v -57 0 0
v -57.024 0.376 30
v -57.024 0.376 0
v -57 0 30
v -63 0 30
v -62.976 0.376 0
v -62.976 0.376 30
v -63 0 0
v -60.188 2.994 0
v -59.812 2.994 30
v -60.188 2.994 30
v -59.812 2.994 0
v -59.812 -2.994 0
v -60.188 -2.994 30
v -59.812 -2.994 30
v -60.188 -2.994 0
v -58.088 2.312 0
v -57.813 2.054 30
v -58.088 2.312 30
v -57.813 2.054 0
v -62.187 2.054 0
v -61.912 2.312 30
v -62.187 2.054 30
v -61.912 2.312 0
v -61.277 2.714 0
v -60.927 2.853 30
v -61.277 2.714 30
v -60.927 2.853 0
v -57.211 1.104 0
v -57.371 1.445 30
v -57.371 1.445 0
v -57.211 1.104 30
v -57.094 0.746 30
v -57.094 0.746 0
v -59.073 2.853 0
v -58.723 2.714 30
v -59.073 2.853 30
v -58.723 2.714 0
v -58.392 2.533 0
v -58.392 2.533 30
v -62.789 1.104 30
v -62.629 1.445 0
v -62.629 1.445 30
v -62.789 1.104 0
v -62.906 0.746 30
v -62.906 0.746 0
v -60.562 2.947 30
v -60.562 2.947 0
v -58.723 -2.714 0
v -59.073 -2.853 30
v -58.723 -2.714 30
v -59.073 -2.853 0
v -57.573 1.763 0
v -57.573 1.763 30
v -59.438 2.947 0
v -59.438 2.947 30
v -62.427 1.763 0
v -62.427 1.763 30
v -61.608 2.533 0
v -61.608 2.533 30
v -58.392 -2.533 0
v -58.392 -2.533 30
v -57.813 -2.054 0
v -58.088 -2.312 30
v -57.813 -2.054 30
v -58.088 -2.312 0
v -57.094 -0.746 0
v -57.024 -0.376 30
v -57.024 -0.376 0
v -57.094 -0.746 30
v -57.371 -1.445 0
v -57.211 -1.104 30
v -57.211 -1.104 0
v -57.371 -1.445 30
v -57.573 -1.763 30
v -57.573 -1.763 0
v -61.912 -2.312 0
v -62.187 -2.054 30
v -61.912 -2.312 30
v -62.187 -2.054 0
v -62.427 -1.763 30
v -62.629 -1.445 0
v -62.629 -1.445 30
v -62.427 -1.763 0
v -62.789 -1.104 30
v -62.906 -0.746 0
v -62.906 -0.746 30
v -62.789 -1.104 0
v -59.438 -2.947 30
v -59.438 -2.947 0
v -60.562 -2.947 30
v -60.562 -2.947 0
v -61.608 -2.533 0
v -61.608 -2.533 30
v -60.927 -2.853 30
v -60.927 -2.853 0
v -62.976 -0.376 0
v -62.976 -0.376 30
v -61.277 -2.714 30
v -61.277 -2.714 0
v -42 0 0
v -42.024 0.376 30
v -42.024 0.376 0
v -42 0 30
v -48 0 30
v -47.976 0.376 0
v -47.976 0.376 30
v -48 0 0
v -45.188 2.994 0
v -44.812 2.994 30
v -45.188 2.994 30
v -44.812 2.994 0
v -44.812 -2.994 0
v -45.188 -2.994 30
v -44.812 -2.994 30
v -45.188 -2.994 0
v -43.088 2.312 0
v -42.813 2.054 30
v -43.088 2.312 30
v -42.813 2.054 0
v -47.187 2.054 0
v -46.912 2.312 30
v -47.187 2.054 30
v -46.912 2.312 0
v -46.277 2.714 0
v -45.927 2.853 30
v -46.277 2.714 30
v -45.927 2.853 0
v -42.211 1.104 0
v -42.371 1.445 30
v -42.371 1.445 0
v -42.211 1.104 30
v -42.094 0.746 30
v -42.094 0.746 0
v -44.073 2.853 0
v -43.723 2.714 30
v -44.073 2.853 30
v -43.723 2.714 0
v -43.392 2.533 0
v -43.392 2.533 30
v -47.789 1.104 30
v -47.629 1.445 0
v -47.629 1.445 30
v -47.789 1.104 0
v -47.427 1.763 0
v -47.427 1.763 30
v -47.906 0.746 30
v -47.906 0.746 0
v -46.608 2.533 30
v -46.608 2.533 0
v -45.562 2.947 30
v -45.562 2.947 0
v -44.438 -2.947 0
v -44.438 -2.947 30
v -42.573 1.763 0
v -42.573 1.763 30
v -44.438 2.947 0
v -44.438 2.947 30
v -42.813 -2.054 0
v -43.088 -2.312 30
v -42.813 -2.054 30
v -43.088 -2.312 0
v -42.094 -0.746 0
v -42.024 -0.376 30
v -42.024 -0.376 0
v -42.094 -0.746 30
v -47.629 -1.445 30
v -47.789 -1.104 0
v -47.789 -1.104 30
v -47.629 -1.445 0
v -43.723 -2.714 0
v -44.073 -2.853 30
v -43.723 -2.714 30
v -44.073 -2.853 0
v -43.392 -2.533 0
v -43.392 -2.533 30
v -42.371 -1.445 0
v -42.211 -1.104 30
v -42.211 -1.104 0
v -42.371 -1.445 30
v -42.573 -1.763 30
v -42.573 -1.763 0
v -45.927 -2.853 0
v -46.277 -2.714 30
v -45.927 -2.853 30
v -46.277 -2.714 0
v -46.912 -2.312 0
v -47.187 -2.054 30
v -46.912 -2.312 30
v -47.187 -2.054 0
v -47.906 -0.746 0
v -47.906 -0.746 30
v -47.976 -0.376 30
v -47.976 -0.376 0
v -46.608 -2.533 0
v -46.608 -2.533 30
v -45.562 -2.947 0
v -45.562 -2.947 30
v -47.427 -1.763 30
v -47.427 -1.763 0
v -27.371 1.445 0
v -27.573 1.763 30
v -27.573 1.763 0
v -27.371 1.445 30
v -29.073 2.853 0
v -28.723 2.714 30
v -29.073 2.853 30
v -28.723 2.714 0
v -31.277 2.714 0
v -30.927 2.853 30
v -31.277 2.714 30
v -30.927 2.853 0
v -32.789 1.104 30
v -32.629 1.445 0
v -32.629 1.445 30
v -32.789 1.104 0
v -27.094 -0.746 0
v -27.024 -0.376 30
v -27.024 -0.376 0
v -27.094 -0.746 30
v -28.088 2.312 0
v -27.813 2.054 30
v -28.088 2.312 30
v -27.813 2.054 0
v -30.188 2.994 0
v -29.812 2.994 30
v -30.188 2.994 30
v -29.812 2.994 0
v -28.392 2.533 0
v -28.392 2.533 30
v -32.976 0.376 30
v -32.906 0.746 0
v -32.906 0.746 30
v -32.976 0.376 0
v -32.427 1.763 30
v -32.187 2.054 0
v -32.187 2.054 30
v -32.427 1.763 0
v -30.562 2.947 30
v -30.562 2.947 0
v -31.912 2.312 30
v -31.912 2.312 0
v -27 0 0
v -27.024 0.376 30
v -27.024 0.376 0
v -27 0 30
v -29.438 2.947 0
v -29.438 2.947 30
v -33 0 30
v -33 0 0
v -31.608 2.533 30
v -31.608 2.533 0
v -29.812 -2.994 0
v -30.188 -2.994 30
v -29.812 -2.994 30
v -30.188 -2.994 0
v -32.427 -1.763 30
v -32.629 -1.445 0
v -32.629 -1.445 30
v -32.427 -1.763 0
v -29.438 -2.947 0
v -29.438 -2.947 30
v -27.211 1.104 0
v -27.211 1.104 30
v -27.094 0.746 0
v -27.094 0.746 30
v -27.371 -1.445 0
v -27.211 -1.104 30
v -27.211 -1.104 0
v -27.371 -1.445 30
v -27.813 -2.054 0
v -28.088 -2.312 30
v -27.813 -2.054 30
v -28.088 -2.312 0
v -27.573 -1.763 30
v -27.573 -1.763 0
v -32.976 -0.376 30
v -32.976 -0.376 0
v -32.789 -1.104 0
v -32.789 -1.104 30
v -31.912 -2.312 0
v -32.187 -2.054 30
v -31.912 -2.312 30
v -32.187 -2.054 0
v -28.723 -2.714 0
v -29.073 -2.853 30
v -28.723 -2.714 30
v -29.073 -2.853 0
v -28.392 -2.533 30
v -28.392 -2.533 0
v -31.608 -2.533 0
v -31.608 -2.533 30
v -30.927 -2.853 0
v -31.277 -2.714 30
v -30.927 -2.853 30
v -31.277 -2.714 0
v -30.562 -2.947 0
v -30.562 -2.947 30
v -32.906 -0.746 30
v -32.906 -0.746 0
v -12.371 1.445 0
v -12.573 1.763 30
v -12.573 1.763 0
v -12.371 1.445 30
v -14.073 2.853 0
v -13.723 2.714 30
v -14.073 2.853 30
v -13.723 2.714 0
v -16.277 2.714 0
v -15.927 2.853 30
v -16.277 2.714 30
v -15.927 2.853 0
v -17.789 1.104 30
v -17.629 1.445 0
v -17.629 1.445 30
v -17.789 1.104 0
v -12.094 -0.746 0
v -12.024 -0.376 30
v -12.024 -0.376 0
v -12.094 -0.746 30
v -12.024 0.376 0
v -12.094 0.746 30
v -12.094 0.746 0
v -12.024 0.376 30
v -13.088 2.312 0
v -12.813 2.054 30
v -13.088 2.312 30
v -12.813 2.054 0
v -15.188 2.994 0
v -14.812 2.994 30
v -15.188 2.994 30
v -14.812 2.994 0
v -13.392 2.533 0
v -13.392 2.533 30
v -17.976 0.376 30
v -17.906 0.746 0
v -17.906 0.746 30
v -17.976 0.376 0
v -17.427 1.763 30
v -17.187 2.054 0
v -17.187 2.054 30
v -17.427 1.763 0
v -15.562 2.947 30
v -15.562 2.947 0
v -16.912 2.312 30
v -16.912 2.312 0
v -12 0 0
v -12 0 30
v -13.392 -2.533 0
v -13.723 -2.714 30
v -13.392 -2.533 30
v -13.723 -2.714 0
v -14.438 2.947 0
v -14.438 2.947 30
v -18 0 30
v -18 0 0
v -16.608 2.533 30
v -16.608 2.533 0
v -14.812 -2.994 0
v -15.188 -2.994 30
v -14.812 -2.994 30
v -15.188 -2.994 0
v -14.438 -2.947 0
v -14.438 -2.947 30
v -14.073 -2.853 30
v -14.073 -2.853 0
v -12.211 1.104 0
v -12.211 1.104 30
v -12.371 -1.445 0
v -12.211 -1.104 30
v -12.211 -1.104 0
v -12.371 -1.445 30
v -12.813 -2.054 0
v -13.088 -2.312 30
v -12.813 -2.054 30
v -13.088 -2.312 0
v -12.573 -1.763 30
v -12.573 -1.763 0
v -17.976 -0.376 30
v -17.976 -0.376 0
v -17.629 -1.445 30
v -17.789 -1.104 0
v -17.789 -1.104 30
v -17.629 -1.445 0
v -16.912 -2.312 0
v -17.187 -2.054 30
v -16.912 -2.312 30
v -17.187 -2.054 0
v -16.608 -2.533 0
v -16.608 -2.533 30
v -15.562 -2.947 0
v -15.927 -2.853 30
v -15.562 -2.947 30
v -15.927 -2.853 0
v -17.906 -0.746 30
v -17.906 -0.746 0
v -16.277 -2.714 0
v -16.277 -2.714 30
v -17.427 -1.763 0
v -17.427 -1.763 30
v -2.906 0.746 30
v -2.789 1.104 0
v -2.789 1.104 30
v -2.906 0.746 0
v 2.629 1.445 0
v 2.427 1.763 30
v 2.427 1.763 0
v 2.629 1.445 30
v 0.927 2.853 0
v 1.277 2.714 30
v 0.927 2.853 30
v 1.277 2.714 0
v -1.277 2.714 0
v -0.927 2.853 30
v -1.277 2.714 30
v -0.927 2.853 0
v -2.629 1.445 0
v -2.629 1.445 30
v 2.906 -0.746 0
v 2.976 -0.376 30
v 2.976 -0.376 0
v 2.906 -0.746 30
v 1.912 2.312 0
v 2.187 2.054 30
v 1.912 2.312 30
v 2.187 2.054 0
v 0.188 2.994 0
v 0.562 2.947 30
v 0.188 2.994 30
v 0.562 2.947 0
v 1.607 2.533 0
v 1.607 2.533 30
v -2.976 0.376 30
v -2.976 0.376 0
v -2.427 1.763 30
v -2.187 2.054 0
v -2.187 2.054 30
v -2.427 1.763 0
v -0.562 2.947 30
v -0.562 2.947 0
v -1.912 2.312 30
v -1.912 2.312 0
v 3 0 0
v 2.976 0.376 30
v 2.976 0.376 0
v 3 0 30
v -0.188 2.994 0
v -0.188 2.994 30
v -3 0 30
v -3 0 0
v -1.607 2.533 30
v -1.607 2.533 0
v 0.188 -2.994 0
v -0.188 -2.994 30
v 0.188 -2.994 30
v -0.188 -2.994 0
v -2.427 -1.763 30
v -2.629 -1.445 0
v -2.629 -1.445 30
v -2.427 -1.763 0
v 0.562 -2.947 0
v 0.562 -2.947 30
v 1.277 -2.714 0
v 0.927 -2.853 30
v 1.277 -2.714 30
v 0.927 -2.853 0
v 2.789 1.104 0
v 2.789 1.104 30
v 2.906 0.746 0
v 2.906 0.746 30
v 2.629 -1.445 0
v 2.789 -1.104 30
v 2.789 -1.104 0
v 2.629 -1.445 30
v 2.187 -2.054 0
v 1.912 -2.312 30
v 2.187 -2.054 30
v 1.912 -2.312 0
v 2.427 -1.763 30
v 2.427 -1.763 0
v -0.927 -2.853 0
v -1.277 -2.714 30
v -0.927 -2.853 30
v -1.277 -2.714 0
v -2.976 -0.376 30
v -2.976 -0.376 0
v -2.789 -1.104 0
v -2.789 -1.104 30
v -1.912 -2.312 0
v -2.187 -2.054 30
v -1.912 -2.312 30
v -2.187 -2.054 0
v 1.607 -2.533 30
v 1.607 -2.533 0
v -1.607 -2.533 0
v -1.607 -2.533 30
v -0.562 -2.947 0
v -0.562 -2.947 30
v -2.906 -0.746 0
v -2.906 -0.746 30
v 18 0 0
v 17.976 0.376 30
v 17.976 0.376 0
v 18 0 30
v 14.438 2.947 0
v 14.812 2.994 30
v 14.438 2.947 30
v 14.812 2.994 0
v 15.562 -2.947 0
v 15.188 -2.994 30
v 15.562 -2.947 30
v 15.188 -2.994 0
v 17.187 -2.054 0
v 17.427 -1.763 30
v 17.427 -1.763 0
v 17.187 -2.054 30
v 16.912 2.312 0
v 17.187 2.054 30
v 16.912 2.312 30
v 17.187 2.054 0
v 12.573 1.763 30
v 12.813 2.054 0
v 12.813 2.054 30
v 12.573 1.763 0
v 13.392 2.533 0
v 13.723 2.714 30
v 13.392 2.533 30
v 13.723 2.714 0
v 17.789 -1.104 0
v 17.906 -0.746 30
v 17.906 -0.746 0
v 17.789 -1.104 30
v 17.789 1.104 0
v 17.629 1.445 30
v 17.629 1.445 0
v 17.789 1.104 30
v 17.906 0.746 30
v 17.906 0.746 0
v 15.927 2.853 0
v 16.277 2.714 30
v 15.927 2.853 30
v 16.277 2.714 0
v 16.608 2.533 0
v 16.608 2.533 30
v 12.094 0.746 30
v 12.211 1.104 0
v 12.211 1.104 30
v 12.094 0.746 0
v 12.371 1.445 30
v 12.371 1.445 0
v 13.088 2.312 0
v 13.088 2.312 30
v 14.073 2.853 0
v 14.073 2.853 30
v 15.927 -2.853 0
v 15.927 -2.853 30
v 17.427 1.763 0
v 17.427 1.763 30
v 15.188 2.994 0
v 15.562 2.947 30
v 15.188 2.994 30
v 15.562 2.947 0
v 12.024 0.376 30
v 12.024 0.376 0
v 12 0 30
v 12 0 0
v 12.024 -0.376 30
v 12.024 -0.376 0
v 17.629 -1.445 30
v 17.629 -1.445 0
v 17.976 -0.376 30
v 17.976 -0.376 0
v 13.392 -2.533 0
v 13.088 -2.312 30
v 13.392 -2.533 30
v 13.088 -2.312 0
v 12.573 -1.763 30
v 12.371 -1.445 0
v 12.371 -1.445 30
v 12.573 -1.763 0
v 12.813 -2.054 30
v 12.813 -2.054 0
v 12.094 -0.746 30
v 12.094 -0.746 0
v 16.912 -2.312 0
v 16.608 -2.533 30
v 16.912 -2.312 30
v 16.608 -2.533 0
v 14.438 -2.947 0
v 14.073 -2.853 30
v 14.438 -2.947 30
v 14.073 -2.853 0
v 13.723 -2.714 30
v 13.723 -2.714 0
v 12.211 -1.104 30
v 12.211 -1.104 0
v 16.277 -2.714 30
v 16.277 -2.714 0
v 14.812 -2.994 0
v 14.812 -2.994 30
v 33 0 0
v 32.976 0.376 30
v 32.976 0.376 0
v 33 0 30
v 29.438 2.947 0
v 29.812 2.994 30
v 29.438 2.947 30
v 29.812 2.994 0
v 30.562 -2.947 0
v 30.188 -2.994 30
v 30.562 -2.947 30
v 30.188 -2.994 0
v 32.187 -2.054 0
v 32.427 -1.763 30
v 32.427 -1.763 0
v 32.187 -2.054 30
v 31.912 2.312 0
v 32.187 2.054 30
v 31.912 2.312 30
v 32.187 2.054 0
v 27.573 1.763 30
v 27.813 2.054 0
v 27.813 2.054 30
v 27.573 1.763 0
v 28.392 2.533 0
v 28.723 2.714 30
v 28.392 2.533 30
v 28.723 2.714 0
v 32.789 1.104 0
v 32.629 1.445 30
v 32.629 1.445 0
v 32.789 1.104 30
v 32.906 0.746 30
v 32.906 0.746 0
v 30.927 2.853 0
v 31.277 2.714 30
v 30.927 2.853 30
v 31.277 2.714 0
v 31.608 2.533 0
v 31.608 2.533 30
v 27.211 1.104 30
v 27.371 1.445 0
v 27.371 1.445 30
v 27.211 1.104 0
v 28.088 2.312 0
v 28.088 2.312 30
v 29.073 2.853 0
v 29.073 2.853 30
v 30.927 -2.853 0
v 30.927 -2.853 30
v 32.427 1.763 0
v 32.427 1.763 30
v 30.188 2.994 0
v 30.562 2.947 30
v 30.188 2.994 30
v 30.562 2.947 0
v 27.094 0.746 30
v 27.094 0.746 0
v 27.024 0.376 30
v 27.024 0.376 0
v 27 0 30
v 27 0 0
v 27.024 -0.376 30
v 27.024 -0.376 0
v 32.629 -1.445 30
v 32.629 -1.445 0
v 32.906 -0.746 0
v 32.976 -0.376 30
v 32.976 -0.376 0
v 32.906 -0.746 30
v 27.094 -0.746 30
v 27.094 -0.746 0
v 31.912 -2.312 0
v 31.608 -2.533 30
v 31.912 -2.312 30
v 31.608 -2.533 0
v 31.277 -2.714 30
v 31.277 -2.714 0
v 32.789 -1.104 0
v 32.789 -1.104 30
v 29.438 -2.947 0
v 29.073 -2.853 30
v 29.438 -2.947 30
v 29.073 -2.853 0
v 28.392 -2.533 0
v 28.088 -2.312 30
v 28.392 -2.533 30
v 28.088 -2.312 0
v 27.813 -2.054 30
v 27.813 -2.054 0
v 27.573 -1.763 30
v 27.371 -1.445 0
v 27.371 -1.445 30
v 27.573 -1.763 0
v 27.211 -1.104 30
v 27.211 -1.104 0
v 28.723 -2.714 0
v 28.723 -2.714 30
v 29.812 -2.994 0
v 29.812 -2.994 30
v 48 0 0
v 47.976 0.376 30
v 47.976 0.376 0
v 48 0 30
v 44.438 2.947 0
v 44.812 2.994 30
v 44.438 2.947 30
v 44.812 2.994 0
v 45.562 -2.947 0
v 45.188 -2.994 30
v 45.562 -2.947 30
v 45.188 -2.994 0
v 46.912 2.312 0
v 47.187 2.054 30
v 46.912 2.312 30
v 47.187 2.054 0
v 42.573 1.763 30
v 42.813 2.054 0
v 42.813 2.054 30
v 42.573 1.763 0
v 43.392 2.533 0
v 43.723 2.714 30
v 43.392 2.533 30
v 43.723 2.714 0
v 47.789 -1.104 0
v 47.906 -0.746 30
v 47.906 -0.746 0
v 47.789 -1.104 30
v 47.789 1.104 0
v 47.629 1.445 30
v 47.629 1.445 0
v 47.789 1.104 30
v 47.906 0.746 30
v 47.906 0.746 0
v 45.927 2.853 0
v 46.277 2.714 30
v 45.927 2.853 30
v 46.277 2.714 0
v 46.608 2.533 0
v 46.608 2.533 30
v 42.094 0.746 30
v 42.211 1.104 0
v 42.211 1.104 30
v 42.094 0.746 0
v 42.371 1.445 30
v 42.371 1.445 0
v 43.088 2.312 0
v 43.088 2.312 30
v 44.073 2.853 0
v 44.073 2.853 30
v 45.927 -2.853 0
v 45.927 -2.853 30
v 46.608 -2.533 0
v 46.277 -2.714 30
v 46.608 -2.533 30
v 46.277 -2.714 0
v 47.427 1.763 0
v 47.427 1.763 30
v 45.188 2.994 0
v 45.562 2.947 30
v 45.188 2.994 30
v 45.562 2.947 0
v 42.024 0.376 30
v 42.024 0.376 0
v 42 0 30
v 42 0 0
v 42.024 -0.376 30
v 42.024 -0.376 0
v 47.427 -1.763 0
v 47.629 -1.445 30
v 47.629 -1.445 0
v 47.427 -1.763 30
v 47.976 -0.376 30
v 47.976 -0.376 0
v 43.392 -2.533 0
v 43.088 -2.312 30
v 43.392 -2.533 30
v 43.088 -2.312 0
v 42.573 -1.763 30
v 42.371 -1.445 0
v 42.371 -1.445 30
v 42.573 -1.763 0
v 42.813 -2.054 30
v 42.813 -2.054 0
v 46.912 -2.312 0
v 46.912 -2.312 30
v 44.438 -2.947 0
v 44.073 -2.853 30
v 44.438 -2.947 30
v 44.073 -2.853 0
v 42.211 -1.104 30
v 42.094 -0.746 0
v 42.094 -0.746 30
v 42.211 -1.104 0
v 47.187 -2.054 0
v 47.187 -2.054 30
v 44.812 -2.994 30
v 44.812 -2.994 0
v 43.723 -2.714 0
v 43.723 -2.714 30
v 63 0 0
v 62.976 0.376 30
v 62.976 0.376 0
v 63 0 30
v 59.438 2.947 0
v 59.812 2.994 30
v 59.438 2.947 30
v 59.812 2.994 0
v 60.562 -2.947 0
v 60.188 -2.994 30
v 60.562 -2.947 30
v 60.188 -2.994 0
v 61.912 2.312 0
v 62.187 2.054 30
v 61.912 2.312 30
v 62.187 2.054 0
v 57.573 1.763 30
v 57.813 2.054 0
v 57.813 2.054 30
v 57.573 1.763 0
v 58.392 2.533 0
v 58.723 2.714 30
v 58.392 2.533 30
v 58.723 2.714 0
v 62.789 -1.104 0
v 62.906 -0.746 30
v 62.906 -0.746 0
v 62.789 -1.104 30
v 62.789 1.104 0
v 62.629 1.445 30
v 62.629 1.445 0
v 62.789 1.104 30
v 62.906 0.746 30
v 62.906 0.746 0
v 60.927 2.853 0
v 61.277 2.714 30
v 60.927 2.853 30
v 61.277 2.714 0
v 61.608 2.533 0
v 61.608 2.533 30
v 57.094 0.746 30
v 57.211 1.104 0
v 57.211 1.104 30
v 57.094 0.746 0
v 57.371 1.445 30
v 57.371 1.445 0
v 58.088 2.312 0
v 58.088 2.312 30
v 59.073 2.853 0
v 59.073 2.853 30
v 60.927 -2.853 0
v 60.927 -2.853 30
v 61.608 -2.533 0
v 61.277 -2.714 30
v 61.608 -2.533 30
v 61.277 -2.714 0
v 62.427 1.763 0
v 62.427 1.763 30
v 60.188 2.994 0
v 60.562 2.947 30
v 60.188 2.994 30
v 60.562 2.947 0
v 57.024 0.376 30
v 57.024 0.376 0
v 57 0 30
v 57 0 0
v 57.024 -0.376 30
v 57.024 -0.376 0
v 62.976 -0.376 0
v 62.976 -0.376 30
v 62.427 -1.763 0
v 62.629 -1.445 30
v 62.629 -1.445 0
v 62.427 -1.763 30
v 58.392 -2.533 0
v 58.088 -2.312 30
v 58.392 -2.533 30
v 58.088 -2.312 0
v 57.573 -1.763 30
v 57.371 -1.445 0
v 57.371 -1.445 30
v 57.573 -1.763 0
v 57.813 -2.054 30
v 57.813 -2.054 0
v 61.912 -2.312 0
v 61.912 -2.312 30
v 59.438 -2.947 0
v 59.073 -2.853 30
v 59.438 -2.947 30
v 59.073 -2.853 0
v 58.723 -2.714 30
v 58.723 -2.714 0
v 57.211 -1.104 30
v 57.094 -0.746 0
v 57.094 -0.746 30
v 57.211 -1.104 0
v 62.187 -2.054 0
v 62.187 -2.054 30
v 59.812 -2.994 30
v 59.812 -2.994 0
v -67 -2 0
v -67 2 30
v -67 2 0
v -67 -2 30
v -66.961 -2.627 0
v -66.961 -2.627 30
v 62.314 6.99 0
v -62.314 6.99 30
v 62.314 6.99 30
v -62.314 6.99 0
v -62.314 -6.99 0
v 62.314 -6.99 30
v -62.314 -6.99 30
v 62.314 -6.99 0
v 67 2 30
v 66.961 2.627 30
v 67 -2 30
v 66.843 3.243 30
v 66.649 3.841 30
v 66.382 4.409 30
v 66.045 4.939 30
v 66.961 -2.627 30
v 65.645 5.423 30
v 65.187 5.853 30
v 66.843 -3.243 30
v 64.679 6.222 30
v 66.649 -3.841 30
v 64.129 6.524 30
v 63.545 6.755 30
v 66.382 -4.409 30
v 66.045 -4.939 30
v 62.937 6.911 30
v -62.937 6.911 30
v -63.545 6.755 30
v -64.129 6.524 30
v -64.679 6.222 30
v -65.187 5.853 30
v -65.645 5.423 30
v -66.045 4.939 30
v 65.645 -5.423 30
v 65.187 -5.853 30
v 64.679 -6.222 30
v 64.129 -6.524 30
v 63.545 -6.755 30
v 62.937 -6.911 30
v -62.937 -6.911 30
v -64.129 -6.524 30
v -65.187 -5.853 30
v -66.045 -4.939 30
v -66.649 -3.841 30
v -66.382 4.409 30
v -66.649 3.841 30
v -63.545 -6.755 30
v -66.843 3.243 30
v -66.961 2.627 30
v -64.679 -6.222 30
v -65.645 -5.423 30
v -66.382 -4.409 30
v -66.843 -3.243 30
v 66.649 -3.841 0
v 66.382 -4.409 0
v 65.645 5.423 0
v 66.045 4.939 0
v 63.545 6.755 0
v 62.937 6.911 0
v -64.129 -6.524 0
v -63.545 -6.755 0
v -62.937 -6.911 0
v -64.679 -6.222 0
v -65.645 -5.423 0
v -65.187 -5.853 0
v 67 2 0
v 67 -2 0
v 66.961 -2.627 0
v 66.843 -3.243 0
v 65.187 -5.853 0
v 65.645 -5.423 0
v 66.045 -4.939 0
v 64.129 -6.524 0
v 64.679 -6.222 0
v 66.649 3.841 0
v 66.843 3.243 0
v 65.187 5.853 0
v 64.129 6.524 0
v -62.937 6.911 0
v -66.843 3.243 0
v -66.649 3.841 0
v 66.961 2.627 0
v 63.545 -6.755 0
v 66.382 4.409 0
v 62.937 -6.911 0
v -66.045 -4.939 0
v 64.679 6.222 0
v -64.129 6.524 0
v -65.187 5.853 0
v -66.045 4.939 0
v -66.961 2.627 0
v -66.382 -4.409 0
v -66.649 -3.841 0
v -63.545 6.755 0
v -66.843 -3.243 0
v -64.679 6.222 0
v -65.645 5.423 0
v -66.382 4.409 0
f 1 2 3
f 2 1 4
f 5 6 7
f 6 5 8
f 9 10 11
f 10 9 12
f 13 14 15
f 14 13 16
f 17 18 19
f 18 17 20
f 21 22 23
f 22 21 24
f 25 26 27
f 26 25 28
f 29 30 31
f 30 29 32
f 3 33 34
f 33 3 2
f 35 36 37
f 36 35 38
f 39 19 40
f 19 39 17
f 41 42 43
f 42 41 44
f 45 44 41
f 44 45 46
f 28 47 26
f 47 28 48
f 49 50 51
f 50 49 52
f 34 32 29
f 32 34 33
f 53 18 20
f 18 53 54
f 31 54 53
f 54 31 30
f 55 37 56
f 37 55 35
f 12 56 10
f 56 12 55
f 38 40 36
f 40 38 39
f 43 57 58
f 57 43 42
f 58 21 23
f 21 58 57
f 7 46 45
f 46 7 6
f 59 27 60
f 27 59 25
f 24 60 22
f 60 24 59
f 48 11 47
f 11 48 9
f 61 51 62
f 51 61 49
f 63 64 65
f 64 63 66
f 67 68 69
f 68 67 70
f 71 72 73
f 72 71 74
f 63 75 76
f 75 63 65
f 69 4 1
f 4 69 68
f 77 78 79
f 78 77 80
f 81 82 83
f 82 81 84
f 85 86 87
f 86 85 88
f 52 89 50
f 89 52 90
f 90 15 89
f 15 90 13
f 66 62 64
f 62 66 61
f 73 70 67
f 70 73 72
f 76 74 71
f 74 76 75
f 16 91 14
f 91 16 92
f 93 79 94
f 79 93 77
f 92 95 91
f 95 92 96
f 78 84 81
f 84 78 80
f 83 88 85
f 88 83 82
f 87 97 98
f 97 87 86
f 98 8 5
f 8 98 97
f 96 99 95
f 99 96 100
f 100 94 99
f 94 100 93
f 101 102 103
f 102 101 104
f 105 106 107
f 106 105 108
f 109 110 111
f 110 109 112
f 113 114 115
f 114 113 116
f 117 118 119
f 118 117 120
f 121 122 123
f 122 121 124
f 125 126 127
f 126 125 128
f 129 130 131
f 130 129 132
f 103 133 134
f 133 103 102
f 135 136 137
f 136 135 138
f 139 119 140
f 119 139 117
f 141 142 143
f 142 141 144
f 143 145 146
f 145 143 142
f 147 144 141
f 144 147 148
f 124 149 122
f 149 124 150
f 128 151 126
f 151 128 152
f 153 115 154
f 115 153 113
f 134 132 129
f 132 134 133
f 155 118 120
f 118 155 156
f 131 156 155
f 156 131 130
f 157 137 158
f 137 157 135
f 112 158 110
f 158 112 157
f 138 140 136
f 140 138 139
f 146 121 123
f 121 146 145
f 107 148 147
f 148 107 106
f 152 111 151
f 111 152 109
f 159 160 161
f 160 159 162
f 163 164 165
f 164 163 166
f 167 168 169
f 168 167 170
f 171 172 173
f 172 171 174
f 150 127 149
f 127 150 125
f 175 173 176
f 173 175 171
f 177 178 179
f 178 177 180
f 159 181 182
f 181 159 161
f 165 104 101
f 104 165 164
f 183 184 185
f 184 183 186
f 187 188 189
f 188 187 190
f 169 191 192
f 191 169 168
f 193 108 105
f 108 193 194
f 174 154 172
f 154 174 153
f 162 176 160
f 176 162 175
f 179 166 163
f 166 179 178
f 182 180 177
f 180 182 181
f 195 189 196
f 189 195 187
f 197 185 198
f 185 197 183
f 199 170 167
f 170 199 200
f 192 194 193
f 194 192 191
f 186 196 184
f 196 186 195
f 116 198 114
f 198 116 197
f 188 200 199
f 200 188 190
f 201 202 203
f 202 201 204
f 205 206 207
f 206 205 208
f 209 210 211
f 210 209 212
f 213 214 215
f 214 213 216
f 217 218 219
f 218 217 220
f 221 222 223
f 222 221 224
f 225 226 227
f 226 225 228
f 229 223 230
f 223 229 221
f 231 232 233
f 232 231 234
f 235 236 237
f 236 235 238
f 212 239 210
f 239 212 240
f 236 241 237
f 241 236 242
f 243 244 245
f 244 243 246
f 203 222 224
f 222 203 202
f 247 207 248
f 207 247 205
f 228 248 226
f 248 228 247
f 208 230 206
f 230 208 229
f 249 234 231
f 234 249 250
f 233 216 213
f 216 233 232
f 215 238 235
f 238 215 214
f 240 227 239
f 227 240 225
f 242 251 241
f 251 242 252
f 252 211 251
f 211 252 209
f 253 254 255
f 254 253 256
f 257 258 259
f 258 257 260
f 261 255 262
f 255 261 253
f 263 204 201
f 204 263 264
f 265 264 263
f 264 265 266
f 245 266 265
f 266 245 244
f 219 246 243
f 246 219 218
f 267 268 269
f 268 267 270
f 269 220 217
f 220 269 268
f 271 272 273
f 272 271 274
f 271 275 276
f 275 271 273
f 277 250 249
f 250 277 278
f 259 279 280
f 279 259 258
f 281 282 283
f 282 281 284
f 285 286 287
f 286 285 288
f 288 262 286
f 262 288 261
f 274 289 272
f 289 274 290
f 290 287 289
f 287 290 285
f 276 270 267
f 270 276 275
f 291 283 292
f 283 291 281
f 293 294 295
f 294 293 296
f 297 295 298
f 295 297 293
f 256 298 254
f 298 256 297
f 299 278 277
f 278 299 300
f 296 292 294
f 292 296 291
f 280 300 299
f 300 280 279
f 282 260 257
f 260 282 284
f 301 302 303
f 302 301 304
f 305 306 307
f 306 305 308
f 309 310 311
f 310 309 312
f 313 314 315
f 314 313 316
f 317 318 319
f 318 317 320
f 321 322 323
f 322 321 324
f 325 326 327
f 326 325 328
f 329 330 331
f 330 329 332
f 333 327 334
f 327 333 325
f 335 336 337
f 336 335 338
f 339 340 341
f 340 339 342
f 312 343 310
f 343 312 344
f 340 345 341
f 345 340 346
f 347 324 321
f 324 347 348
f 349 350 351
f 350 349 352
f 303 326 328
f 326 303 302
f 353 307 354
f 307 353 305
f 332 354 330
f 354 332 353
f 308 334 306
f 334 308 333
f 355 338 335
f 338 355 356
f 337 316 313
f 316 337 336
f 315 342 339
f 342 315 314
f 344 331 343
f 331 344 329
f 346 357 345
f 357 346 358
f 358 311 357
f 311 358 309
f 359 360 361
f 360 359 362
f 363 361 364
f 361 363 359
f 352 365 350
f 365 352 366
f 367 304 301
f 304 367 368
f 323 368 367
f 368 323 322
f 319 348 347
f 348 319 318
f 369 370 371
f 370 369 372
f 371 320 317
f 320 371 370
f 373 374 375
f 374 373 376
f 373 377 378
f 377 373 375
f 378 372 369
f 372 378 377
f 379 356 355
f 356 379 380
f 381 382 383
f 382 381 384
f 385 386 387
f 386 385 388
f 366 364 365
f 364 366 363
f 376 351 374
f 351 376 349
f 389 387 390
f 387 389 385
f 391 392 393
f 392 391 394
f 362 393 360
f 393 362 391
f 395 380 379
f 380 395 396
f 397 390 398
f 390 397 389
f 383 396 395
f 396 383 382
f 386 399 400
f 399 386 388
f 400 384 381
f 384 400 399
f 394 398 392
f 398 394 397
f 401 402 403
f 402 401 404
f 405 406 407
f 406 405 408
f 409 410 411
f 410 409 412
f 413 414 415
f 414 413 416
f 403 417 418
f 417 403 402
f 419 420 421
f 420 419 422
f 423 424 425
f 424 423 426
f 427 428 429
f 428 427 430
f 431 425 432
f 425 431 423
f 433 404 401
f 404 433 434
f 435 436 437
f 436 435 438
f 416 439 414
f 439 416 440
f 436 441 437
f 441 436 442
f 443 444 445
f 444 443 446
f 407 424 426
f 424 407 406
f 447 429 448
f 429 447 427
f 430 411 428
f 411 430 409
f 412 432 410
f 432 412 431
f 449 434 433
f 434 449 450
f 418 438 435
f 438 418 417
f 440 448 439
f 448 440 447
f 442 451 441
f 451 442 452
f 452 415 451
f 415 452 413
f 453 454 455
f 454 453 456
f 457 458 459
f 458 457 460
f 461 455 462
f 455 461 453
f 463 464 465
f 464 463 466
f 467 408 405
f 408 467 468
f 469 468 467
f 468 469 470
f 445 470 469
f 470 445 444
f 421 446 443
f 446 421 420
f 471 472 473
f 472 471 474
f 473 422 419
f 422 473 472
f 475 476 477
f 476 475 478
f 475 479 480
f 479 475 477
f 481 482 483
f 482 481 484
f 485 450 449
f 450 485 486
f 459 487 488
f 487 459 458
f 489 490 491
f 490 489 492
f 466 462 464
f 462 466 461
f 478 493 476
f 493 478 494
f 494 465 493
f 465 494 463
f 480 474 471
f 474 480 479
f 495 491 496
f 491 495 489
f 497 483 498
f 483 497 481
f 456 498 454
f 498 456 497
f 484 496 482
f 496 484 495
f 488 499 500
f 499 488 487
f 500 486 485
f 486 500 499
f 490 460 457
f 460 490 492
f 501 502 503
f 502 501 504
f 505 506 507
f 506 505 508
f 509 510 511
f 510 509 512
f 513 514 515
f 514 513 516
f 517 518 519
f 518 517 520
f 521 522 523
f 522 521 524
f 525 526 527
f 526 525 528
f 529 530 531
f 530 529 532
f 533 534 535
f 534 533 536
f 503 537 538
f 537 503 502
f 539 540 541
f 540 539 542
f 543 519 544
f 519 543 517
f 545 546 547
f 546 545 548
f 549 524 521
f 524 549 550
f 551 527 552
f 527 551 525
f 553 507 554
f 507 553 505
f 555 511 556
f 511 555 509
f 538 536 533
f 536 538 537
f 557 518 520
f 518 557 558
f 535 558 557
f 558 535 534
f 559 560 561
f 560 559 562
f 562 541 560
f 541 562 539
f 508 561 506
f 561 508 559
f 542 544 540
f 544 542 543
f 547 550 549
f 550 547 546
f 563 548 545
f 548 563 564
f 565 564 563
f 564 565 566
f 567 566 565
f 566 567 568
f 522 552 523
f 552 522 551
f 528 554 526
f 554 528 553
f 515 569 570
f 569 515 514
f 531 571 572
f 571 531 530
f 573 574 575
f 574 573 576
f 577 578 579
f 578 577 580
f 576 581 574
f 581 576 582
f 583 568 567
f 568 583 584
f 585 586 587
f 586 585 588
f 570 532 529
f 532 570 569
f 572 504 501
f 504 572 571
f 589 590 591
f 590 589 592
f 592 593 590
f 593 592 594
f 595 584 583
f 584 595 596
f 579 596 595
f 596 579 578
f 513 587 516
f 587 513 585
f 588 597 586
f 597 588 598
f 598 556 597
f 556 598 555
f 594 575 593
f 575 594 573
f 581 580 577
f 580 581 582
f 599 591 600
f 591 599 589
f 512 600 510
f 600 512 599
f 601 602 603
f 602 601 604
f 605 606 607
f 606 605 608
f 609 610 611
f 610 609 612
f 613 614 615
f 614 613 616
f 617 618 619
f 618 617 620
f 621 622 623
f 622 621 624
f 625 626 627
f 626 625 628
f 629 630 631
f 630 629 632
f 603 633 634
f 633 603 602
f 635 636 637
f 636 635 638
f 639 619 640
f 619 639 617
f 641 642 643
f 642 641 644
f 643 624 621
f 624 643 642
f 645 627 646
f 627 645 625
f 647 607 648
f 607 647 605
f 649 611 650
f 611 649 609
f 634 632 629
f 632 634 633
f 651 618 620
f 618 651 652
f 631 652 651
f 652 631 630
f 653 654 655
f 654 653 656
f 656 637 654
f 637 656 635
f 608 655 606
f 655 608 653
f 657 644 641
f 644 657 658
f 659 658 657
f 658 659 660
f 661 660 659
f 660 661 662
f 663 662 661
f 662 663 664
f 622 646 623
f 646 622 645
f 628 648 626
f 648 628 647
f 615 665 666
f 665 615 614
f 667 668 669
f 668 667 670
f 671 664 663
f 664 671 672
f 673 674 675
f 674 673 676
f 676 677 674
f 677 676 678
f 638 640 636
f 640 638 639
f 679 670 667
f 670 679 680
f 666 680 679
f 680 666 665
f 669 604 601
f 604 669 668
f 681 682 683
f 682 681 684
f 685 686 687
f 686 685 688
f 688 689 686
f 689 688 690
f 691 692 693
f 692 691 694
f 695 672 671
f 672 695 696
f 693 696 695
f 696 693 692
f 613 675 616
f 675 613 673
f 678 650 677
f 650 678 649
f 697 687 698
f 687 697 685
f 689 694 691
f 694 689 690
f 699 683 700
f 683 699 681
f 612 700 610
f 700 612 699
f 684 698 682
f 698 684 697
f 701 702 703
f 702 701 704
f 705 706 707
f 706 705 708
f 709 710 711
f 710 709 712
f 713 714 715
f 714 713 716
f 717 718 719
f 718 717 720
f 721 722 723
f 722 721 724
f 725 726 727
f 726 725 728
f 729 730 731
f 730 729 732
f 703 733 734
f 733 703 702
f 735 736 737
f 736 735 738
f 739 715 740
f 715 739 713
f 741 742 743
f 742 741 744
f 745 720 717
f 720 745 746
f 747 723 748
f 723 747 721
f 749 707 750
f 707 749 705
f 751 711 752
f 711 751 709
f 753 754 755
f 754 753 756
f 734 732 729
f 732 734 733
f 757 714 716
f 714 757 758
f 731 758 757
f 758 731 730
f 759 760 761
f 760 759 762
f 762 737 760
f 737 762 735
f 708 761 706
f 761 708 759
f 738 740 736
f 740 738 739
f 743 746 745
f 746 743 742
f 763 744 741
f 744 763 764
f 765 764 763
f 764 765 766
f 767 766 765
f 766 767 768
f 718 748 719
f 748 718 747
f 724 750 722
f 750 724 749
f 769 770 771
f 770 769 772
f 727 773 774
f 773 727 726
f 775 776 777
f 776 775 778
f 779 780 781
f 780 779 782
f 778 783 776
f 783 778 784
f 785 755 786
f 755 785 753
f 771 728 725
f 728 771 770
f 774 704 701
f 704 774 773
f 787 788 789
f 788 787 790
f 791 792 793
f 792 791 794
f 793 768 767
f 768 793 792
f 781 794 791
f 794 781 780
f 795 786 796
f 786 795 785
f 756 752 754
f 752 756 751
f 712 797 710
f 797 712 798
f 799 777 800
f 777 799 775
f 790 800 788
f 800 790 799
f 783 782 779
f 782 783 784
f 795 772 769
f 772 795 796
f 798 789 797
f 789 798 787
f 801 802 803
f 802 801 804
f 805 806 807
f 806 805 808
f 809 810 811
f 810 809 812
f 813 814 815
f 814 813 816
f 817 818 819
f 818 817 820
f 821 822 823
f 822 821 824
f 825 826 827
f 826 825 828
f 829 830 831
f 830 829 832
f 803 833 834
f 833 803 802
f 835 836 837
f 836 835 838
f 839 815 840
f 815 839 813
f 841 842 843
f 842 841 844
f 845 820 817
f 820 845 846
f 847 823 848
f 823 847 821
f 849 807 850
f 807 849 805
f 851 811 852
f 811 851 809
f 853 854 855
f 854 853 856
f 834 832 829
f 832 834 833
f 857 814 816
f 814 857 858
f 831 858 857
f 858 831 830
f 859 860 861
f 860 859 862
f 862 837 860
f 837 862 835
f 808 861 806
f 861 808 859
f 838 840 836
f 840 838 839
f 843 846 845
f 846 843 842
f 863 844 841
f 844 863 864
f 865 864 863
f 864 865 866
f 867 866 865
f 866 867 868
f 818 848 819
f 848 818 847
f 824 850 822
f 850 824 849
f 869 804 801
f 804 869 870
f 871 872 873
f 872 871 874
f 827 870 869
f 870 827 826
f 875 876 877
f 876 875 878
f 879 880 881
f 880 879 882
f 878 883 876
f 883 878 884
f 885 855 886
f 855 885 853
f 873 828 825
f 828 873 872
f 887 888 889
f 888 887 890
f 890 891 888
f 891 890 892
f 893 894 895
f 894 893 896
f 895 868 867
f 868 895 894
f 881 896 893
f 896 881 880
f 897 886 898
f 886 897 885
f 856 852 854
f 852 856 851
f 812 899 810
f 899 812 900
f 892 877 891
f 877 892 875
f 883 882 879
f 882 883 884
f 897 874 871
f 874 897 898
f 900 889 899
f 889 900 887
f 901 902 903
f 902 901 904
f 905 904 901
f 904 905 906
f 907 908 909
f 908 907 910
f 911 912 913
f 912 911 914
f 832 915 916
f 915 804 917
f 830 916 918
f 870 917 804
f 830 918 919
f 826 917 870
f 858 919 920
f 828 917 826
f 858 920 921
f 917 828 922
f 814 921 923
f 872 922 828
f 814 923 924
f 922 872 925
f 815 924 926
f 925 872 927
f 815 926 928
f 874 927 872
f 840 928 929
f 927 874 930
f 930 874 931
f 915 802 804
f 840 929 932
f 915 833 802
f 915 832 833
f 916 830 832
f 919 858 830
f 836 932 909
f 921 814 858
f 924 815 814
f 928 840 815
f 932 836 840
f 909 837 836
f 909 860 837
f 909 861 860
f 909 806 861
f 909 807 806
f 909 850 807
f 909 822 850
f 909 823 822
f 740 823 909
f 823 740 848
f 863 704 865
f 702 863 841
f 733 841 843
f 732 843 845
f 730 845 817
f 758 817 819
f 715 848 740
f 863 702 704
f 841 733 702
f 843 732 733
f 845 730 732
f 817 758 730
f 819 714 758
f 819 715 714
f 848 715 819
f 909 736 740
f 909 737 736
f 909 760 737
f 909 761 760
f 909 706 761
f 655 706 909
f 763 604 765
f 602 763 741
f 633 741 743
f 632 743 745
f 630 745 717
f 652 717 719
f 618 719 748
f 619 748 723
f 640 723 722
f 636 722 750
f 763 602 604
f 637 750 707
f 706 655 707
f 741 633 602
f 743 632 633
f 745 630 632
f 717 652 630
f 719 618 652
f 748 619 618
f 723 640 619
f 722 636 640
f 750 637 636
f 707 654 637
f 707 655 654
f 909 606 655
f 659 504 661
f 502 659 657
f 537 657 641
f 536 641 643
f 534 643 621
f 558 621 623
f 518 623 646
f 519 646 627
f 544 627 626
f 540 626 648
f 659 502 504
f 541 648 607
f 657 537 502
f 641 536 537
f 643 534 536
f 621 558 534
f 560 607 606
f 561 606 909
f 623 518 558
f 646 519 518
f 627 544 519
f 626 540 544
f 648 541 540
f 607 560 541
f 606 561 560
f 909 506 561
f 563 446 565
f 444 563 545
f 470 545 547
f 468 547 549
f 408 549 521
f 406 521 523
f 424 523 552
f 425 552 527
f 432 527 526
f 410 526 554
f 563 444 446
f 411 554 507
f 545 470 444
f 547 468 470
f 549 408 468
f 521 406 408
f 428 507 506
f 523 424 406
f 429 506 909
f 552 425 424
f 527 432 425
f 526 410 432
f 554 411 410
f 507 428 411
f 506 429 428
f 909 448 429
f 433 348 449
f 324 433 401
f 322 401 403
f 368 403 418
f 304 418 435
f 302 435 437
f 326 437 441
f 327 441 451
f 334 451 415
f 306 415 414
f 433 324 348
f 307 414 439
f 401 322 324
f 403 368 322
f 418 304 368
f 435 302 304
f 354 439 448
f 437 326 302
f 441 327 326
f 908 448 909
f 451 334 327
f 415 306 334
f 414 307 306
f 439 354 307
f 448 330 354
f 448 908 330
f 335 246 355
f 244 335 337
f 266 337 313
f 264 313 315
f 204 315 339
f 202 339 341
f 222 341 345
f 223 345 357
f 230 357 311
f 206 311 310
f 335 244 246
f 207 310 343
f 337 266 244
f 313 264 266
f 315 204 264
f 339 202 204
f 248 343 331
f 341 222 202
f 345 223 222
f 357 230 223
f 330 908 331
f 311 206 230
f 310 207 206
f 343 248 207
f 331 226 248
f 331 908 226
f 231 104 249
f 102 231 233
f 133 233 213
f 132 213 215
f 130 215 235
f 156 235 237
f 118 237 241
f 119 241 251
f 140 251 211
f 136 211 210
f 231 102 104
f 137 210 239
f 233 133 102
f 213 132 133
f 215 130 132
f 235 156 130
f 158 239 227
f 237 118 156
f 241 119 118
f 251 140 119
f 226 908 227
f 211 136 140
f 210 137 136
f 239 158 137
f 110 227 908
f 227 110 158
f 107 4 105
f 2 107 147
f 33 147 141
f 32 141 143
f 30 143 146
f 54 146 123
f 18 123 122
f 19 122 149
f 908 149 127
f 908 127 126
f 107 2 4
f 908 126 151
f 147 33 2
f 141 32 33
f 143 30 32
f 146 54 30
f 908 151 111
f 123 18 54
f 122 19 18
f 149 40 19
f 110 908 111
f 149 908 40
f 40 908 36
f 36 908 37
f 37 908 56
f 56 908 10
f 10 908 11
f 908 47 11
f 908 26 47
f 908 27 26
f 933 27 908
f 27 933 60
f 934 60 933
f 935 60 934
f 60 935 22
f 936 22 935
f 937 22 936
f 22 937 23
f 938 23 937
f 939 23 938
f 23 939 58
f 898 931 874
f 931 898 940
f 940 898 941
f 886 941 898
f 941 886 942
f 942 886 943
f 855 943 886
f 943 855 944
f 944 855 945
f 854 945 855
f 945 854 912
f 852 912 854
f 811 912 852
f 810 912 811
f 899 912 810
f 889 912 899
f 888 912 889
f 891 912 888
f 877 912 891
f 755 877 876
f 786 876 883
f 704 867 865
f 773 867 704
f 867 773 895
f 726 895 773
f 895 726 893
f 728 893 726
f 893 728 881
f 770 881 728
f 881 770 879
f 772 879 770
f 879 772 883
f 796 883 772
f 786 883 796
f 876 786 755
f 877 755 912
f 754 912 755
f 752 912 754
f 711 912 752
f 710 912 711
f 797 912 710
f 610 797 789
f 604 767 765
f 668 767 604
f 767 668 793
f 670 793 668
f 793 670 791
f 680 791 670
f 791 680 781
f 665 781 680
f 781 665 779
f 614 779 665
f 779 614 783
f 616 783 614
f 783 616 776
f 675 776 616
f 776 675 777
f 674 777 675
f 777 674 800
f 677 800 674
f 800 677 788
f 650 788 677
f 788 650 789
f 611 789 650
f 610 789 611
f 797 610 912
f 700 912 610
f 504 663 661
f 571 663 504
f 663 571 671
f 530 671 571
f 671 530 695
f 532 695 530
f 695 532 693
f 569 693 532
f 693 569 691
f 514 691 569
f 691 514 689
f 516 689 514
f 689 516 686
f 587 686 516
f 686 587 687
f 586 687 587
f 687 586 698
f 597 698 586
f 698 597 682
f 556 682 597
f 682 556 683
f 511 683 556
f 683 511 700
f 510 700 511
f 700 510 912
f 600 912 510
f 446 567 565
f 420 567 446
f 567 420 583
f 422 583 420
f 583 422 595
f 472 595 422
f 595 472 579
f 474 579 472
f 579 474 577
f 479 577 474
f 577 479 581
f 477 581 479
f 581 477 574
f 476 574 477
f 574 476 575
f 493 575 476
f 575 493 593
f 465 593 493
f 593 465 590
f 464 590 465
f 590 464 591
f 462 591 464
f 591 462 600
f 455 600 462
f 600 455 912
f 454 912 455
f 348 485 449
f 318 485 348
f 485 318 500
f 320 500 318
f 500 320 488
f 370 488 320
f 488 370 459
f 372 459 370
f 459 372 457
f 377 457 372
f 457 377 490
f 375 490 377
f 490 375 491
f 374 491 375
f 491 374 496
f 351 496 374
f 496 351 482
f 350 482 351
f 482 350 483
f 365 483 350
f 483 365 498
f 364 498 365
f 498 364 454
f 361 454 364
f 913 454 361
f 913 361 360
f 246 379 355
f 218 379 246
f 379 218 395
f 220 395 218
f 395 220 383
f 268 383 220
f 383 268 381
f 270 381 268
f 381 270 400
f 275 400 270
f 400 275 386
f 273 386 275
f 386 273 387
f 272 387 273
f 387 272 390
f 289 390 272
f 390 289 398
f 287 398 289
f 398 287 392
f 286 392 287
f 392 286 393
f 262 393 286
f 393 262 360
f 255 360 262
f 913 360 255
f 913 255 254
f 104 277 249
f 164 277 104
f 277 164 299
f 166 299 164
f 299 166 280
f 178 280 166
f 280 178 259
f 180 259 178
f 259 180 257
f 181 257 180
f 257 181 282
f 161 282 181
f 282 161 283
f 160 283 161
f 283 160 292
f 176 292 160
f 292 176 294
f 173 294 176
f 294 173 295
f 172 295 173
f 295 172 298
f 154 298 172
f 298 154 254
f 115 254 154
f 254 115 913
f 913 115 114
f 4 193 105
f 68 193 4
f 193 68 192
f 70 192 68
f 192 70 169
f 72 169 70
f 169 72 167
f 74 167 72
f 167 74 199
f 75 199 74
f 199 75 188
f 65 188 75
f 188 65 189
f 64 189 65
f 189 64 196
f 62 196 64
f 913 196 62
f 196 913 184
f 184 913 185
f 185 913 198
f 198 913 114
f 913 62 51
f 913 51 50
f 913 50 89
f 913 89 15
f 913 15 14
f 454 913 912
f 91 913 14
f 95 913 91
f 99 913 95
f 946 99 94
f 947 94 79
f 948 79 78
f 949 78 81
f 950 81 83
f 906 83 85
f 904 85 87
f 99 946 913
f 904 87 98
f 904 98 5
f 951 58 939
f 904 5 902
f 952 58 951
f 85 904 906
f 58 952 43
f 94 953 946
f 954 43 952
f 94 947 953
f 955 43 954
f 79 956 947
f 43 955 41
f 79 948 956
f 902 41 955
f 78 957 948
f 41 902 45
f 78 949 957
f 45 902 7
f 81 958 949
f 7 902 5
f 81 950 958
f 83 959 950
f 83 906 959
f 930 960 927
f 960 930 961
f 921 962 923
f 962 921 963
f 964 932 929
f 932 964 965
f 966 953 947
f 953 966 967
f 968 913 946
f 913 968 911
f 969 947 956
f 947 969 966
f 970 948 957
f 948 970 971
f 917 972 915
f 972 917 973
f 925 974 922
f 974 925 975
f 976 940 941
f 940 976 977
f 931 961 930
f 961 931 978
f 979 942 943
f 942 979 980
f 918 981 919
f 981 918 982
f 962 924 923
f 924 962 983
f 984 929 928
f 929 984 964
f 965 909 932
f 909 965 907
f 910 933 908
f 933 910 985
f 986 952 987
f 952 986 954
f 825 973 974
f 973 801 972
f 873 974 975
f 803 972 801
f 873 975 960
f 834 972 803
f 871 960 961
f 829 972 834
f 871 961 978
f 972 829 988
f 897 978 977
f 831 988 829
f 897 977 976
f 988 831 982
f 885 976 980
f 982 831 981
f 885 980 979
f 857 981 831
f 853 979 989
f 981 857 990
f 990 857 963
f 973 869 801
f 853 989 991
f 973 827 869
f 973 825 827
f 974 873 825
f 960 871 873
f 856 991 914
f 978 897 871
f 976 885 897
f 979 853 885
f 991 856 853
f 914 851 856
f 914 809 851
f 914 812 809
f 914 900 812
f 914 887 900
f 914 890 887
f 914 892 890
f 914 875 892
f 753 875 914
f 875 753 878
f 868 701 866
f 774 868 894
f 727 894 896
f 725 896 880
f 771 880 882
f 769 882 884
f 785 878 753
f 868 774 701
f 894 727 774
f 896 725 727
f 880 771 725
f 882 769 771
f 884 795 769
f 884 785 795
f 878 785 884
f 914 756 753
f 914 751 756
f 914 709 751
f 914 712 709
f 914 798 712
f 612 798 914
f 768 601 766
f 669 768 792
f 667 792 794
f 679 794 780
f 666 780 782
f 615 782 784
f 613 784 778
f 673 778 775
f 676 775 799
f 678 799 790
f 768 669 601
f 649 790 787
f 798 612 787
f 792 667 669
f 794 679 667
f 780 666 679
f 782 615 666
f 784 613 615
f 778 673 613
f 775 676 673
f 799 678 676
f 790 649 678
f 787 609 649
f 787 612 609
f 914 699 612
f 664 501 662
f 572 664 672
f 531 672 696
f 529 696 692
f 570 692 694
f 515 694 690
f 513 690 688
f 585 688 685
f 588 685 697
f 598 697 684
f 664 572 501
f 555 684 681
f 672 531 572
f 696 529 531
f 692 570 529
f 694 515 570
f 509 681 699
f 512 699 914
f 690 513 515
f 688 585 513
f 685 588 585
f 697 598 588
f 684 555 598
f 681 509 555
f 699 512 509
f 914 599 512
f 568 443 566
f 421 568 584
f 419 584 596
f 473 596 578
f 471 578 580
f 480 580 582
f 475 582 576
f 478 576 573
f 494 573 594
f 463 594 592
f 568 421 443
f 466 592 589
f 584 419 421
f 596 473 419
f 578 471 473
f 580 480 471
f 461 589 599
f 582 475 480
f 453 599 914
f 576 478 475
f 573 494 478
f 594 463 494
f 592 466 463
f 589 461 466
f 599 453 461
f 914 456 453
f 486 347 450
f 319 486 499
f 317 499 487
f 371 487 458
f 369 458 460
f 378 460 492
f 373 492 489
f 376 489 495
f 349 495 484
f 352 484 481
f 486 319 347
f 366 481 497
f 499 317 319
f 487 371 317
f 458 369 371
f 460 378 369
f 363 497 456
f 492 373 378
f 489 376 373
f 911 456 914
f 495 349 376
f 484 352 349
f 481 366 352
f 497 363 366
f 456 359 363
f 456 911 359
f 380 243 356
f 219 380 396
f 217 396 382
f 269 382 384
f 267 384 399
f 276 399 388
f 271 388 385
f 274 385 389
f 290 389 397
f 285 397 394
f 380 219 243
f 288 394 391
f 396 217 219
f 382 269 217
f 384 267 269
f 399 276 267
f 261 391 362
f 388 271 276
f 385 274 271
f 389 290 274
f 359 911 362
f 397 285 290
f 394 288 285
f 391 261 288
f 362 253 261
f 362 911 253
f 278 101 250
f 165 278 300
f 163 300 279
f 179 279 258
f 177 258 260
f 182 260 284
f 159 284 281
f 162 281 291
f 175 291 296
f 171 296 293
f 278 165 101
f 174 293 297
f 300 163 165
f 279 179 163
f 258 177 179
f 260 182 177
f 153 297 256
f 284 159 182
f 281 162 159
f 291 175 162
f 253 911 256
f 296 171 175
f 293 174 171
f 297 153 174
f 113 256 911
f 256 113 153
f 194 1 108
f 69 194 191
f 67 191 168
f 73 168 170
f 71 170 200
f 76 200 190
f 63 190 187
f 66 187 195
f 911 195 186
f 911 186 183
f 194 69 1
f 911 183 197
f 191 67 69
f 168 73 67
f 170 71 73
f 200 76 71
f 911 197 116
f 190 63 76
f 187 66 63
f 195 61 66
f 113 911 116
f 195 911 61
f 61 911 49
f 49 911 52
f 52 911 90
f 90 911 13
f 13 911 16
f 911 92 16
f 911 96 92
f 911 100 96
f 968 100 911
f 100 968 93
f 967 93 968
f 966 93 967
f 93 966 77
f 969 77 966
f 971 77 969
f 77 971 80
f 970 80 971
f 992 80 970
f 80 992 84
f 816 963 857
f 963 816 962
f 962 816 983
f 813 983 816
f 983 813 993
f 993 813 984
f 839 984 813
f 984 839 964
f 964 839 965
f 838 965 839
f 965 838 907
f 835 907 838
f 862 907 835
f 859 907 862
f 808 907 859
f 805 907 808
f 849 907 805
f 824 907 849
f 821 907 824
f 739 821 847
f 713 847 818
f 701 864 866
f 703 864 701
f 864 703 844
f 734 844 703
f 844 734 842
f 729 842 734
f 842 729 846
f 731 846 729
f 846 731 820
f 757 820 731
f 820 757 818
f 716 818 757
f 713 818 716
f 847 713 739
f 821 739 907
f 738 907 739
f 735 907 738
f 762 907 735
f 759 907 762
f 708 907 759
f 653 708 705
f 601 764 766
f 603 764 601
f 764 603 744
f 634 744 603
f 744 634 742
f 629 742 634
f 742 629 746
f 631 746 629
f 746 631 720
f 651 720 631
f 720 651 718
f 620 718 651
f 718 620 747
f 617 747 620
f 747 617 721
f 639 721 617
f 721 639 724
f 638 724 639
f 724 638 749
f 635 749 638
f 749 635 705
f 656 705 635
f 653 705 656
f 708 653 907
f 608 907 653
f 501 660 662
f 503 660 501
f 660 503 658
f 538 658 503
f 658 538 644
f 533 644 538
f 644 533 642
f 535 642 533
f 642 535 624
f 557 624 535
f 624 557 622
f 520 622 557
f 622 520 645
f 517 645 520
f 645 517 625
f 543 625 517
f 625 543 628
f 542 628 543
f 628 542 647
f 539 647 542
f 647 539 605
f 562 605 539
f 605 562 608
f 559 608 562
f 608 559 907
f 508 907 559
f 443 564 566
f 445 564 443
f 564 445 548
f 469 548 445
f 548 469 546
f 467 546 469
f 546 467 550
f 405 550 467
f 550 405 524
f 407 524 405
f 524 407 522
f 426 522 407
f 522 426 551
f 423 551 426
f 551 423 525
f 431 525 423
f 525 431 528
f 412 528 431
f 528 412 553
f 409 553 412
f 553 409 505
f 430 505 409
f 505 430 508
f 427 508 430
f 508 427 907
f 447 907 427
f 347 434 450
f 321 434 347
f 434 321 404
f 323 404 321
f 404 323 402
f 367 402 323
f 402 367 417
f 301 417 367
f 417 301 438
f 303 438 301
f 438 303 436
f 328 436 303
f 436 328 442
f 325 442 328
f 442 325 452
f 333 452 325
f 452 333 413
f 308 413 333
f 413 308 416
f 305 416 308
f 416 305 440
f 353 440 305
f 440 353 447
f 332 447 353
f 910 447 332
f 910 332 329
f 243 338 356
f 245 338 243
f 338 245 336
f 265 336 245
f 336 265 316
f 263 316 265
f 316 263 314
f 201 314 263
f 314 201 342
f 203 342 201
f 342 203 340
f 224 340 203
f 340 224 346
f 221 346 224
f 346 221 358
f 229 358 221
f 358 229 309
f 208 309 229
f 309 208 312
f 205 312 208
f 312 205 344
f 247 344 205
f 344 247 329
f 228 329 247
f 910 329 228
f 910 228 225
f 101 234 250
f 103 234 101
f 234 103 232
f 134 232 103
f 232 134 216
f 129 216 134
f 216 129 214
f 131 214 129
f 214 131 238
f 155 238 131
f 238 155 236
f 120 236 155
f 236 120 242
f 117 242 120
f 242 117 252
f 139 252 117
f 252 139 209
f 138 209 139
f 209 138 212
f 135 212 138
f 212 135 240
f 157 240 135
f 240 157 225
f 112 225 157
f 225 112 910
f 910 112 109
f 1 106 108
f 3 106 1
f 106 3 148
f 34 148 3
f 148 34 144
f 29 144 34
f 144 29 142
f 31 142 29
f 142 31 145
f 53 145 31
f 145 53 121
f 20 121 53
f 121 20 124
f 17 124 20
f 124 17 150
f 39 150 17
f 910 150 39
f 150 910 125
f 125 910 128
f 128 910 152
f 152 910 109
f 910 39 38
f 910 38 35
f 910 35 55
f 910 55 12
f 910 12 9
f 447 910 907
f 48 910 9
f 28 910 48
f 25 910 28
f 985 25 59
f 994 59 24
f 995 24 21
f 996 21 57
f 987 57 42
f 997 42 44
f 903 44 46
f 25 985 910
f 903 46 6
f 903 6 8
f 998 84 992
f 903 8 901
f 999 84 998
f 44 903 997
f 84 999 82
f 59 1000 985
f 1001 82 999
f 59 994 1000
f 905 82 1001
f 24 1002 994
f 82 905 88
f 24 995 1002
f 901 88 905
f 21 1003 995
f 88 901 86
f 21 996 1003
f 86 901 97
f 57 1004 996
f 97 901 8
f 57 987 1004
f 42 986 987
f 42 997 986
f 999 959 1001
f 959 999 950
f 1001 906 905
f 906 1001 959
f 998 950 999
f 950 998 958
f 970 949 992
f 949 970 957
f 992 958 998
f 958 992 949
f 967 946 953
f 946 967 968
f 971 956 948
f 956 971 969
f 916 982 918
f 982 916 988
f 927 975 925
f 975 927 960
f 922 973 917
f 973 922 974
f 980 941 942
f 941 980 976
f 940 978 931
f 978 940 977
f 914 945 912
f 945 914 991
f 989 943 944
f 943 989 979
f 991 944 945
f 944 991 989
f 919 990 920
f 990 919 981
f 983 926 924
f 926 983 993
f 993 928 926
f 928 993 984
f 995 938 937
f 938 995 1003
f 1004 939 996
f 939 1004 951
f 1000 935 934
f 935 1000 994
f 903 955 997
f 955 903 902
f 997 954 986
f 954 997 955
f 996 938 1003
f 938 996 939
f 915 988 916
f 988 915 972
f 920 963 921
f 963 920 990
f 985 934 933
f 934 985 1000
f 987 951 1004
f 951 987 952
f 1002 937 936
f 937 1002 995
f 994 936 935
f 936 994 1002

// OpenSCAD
$fn = 50;


difference() {
	union() {
		hull() {
			translate(v = [-62.0000000000, 2.0000000000, 0]) {
				cylinder(h = 30, r = 5);
			}
			translate(v = [62.0000000000, 2.0000000000, 0]) {
				cylinder(h = 30, r = 5);
			}
			translate(v = [-62.0000000000, -2.0000000000, 0]) {
				cylinder(h = 30, r = 5);
			}
			translate(v = [62.0000000000, -2.0000000000, 0]) {
				cylinder(h = 30, r = 5);
			}
		}
	}
	union() {
		translate(v = [-60.0000000000, 0.0000000000, 0]) {
			translate(v = [0, 0, -100]) {
				cylinder(h = 200, r = 3.0000000000);
			}
		}
		translate(v = [-45.0000000000, 0.0000000000, 0]) {
			translate(v = [0, 0, -100]) {
				cylinder(h = 200, r = 3.0000000000);
			}
		}
		translate(v = [-30.0000000000, 0.0000000000, 0]) {
			translate(v = [0, 0, -100]) {
				cylinder(h = 200, r = 3.0000000000);
			}
		}
		translate(v = [-15.0000000000, 0.0000000000, 0]) {
			translate(v = [0, 0, -100]) {
				cylinder(h = 200, r = 3.0000000000);
			}
		}
		translate(v = [0, 0, -100]) {
			cylinder(h = 200, r = 3.0000000000);
		}
		translate(v = [15.0000000000, 0.0000000000, 0]) {
			translate(v = [0, 0, -100]) {
				cylinder(h = 200, r = 3.0000000000);
			}
		}
		translate(v = [30.0000000000, 0.0000000000, 0]) {
			translate(v = [0, 0, -100]) {
				cylinder(h = 200, r = 3.0000000000);
			}
		}
		translate(v = [45.0000000000, 0.0000000000, 0]) {
			translate(v = [0, 0, -100]) {
				cylinder(h = 200, r = 3.0000000000);
			}
		}
		translate(v = [60.0000000000, 0.0000000000, 0]) {
			translate(v = [0, 0, -100]) {
				cylinder(h = 200, r = 3.0000000000);
			}
		}
	}
}
